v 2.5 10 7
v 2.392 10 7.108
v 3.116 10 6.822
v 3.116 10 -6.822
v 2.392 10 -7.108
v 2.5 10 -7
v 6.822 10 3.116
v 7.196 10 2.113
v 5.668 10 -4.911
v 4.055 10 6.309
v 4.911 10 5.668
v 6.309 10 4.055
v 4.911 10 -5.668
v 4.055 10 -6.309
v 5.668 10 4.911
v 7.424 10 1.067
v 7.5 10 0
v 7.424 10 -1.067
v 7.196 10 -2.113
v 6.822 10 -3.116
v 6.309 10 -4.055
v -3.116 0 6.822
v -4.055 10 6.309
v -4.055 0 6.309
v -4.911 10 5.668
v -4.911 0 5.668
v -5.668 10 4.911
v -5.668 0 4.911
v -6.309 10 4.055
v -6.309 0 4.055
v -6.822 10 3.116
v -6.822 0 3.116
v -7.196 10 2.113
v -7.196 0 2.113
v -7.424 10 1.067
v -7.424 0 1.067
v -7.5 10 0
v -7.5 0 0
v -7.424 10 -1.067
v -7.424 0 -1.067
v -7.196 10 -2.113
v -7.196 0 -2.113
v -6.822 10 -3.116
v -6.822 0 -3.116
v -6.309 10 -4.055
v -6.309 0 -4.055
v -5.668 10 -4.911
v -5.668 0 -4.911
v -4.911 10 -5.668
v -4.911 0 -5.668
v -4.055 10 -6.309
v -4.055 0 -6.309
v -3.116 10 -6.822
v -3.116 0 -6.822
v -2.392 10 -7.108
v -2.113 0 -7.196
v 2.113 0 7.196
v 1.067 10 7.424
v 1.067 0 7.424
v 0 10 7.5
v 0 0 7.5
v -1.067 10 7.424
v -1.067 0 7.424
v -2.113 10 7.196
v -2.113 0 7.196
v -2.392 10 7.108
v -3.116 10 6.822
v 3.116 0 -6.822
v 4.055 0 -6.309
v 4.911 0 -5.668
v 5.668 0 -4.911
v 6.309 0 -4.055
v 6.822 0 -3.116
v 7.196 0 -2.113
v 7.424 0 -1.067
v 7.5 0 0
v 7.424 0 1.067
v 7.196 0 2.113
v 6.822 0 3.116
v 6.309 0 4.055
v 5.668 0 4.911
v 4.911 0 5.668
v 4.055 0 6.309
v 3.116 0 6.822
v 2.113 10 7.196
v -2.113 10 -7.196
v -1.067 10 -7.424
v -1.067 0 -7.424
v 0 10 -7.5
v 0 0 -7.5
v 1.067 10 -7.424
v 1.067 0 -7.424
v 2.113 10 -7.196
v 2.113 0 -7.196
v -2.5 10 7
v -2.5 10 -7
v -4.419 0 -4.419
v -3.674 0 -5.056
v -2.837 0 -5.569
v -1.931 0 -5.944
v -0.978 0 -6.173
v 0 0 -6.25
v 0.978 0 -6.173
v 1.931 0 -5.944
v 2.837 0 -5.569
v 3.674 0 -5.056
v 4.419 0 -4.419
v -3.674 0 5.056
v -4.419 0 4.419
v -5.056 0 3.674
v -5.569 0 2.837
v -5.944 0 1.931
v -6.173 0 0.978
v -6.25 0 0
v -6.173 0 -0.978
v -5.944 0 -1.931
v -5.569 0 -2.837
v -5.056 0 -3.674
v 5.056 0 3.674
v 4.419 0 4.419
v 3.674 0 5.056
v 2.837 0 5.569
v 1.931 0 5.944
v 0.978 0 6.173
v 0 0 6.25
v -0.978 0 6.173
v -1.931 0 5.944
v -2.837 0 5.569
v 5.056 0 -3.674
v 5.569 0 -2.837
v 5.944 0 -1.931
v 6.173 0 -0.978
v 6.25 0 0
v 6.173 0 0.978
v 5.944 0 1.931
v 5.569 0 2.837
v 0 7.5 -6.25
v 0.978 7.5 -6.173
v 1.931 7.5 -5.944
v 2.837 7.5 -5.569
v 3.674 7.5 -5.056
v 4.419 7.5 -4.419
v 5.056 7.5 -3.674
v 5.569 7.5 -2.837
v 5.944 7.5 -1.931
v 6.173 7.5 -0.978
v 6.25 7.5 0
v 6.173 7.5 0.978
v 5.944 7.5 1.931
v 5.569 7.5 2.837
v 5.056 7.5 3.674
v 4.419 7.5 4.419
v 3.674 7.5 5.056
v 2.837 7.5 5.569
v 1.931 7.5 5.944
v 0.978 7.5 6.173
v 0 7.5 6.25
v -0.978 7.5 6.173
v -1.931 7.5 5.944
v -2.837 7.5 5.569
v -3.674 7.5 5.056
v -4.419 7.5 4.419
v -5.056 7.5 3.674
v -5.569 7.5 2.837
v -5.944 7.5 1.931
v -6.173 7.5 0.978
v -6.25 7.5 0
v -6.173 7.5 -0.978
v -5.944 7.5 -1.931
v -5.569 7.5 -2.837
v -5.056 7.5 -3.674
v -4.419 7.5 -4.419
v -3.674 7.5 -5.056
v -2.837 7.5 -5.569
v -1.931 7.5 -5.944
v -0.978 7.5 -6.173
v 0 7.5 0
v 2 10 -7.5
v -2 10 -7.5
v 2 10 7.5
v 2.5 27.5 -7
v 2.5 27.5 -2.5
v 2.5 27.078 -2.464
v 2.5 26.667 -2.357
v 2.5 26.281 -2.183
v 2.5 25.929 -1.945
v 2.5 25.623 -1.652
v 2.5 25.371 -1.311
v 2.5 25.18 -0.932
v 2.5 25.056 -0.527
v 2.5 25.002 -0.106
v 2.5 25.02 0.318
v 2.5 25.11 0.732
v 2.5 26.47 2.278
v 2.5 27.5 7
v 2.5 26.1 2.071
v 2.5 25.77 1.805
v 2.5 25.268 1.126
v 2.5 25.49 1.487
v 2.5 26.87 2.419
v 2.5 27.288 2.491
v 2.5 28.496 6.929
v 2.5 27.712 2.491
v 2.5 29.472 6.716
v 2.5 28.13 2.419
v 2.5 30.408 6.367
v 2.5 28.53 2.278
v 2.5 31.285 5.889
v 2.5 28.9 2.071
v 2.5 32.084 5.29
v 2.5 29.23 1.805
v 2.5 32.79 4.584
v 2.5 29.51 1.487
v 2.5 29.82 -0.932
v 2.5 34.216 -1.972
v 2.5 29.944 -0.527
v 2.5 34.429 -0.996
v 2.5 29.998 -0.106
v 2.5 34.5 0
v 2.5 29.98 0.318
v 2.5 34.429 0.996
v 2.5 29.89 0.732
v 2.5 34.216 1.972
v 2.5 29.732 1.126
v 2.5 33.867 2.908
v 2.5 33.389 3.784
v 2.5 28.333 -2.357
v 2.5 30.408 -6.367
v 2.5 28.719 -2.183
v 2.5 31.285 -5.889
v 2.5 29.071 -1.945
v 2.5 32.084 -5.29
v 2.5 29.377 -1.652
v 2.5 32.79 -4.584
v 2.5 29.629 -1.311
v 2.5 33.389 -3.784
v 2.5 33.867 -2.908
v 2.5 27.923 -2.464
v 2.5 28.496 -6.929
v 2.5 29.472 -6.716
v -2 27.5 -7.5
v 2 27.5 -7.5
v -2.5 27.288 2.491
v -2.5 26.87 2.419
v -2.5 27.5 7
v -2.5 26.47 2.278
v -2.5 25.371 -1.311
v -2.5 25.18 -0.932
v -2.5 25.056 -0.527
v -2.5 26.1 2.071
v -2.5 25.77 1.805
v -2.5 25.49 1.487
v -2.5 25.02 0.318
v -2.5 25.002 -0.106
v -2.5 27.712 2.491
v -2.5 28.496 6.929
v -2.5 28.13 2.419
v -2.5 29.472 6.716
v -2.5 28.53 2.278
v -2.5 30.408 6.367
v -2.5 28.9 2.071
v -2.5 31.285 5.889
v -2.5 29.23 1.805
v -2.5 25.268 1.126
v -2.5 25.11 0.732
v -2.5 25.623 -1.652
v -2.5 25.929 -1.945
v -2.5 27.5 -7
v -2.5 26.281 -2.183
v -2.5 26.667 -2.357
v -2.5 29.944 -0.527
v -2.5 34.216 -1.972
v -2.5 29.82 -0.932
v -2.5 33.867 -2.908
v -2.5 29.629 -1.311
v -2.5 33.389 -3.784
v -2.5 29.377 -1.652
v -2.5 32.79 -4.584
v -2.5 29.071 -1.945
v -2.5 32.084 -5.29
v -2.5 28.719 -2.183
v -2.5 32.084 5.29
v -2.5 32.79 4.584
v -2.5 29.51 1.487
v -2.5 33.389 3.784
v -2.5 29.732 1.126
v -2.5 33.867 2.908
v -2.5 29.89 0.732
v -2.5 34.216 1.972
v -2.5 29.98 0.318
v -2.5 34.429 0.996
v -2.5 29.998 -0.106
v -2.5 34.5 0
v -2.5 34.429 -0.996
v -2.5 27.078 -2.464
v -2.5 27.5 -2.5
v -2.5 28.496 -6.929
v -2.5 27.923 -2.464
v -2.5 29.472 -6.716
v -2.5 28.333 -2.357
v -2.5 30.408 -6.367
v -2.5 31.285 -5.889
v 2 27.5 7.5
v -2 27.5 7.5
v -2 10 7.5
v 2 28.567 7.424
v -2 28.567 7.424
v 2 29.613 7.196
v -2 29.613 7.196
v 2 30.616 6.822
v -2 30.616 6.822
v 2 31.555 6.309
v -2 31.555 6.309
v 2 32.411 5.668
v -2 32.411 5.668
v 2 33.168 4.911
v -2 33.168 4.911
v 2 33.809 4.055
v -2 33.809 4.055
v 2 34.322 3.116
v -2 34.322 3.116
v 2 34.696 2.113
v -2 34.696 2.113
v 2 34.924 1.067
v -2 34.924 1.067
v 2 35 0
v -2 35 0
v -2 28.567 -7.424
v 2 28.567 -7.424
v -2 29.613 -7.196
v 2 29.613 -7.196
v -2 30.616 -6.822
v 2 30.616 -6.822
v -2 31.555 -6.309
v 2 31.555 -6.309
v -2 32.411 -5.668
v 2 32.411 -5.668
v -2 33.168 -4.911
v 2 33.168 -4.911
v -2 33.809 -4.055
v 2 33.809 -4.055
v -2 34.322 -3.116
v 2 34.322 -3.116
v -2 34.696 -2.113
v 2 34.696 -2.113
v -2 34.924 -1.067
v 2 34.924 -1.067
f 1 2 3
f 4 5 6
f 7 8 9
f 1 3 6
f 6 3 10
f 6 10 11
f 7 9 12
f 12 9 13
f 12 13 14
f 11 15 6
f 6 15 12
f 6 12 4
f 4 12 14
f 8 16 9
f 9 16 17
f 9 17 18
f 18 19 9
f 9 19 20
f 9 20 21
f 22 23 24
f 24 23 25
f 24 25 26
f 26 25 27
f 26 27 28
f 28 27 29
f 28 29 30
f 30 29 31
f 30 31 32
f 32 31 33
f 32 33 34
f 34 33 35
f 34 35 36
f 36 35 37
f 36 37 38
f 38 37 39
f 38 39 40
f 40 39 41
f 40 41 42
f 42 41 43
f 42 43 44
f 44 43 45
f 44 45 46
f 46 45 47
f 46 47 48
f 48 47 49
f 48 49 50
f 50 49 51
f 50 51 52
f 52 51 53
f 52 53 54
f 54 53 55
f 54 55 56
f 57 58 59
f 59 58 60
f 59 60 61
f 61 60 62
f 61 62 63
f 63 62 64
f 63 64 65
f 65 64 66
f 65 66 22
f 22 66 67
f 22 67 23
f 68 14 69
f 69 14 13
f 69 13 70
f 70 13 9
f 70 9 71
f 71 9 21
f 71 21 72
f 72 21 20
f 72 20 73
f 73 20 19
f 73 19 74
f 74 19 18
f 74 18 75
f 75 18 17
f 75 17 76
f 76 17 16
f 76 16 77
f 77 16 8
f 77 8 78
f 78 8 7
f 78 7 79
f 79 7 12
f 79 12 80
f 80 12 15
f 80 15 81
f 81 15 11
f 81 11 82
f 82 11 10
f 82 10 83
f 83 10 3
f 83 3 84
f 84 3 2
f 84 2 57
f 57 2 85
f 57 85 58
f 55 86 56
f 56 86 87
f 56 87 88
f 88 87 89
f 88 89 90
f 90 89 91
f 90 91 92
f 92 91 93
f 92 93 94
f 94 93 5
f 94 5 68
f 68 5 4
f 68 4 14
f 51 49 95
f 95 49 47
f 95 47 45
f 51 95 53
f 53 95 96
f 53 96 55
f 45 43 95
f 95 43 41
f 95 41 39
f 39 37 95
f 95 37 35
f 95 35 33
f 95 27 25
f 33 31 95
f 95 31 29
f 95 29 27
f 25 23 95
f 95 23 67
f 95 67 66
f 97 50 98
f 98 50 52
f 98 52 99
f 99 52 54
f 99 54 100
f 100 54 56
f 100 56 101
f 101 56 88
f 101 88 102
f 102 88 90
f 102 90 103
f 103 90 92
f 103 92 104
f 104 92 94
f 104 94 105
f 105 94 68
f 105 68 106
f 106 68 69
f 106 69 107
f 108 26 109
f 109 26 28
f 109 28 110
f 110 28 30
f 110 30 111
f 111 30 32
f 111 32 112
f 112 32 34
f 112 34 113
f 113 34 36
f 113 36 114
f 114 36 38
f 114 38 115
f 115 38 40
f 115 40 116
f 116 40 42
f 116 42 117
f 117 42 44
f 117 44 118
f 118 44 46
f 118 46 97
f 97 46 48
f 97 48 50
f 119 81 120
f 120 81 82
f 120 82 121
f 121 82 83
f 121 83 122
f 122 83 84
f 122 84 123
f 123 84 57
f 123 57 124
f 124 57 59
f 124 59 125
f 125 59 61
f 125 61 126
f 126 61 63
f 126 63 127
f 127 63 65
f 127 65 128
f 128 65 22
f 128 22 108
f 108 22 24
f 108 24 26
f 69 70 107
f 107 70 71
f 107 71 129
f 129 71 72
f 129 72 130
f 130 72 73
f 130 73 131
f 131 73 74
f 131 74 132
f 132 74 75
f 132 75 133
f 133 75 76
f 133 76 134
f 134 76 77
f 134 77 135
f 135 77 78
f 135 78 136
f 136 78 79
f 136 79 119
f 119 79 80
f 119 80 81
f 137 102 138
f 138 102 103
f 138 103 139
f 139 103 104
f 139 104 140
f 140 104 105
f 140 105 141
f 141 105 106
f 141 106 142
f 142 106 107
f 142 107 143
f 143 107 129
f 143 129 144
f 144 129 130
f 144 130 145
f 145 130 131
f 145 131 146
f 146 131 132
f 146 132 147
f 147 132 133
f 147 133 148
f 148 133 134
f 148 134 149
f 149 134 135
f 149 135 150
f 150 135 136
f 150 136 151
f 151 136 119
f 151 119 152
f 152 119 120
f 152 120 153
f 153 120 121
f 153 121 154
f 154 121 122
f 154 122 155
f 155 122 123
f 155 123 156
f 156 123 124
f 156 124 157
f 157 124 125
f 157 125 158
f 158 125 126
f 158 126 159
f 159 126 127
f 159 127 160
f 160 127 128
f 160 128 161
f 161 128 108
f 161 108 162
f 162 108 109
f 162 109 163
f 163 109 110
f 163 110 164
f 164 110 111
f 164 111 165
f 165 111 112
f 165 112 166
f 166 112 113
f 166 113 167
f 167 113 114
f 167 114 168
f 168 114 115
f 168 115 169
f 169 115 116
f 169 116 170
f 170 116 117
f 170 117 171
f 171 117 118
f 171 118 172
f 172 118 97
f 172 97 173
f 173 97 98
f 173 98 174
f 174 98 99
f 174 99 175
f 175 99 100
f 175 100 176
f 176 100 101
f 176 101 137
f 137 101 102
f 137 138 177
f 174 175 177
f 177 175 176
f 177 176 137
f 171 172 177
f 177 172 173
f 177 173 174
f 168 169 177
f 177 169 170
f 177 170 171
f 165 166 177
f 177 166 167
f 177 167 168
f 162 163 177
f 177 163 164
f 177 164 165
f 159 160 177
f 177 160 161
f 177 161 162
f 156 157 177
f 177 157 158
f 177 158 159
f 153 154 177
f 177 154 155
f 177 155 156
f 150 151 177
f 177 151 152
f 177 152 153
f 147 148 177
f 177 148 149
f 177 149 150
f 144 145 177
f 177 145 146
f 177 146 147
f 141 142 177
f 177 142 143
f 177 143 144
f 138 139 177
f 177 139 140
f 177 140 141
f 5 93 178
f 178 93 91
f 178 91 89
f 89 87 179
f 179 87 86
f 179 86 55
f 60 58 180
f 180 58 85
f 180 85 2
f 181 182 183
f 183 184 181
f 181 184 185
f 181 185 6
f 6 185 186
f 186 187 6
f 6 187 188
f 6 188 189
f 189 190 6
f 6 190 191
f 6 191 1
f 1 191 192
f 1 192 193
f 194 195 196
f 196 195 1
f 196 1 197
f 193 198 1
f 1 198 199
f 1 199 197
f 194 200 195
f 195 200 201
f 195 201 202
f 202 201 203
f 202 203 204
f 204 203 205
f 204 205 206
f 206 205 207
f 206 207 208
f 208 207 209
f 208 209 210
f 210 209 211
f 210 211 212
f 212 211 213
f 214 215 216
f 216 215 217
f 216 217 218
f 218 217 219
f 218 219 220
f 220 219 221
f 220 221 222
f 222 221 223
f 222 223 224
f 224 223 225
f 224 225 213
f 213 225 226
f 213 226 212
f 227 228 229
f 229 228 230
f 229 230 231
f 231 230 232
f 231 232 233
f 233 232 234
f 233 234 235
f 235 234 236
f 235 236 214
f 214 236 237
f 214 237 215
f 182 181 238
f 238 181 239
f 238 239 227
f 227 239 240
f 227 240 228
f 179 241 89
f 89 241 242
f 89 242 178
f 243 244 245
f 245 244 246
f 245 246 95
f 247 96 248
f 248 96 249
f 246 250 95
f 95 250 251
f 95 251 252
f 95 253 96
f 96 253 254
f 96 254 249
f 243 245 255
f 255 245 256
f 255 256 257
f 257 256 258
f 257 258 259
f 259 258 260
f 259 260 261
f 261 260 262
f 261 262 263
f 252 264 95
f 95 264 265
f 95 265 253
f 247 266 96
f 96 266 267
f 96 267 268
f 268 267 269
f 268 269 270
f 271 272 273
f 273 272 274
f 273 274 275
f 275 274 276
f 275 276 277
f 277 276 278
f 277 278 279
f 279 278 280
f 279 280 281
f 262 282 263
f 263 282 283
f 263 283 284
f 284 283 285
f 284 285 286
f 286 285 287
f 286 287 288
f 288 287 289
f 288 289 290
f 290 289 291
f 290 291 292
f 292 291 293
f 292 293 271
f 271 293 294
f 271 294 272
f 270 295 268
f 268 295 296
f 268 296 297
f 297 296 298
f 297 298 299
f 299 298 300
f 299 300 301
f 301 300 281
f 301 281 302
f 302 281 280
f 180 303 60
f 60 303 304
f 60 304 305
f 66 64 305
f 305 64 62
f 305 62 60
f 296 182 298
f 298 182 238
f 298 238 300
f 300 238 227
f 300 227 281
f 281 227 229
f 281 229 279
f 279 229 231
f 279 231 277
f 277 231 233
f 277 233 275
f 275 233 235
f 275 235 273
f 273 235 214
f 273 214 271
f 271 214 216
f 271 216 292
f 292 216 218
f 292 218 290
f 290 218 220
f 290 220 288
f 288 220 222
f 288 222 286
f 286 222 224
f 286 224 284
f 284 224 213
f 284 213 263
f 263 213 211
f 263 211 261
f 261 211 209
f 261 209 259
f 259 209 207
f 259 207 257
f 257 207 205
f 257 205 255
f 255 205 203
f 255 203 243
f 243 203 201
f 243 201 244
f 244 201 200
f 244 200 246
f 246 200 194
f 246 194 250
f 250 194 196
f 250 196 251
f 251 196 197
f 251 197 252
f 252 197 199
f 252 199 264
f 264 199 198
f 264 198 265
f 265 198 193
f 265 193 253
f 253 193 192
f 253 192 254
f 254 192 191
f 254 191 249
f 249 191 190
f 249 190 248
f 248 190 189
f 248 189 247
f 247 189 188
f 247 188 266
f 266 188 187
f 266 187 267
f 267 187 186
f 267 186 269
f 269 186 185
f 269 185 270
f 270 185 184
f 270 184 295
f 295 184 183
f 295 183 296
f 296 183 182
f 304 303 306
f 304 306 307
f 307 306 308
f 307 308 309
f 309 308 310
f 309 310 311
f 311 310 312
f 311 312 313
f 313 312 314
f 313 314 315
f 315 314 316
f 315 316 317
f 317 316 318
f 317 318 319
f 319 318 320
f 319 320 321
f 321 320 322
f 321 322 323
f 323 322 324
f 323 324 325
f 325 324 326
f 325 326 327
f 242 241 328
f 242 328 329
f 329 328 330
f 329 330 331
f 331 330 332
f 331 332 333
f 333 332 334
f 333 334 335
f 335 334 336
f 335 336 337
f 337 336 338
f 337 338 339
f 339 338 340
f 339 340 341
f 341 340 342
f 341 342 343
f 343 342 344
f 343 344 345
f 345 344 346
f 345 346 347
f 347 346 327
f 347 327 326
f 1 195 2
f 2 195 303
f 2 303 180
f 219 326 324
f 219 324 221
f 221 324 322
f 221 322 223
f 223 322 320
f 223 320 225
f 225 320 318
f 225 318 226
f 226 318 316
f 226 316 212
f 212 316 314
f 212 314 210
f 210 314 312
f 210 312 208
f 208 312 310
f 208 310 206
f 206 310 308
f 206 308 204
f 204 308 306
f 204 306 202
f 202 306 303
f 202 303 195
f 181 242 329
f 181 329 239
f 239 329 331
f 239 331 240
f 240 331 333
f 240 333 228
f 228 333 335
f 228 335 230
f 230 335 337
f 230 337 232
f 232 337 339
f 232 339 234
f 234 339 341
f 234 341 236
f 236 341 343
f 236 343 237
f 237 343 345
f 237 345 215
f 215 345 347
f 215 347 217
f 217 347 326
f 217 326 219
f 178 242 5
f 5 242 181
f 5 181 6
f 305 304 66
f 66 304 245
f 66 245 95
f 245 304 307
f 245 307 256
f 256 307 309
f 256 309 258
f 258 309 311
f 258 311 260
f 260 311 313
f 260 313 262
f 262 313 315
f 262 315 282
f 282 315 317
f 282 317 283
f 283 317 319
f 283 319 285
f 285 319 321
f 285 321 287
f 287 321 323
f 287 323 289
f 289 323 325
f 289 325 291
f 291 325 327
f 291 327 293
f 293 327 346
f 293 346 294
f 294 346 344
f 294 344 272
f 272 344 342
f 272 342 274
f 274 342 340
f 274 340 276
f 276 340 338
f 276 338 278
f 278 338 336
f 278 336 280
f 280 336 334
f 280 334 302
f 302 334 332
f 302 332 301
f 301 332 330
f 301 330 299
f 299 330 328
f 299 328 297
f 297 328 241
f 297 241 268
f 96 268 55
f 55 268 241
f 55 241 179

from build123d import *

# Parameters (mm, degrees)
SKETCH1_R           = 7.5
BOSS_EXTRUDE1_DEPTH = 10
SKETCH2_R           = 6.25
CUT_EXTRUDE2_DEPTH  = 7.5
SKETCH3_W           = 5
SKETCH3_H           = 15
BOSS_EXTRUDE2_DEPTH = 25
SKETCH4_R           = 2.5
CUT_EXTRUDE3_DEPTH  = 5
FILLET1_R           = 7.5
CHAMFER1_SIZE       = 0.5


# Some blends are built 0.0001 mm under size
with BuildPart() as part:
    # Sketch1 → Boss-Extrude1 (new body)
    with BuildSketch(Plane(origin=(0, 0, 0), x_dir=(1, 0, 0), z_dir=(0, 1, 0))):
        with Locations(Location((0, 0, 0), (0, 0, 270))):
            Circle(SKETCH1_R)
    extrude(amount=BOSS_EXTRUDE1_DEPTH)

    # Sketch2 → Cut-Extrude2 (cut)
    with BuildSketch(Plane.XZ):
        with Locations(Location((0, 0, 0), (0, 0, 270))):
            Circle(SKETCH2_R)
    extrude(amount=-CUT_EXTRUDE2_DEPTH, mode=Mode.SUBTRACT)

    # Sketch3 → Boss-Extrude2 (add)
    with BuildSketch(Plane(origin=(0, 10, 0), x_dir=(1, 0, 0), z_dir=(0, 1, 0))):
        Rectangle(SKETCH3_W, SKETCH3_H)
    extrude(amount=BOSS_EXTRUDE2_DEPTH)

    # Sketch4 → Cut-Extrude3 (cut)
    with BuildSketch(Plane(origin=(2.5, 0, 0), x_dir=(0, 0, -1), z_dir=(1, 0, 0))):
        with Locations((0, 27.5)):
            Circle(SKETCH4_R)
    extrude(amount=-CUT_EXTRUDE3_DEPTH, mode=Mode.SUBTRACT)

    # Fillet1
    fillet1_edges = [part.edges().sort_by_distance(p)[0] for p in [
        (0, 35, -7.5),
        (0, 35, 7.5),
    ]]
    fillet(fillet1_edges, radius=FILLET1_R - 0.0001)  # a hair under: the kernel refuses the full size

    # Chamfer1
    # the kernel refuses this chamfer: 0.5 mm, written as the material it takes off along each edge
    with BuildSketch(Plane(origin=(-2.5, 10, 7.5), x_dir=(-0.027495876610586462, 0, -0.9996219169112968), z_dir=(0, 1, 0)), Plane(origin=(2.5, 10, 7.5), x_dir=(-0.9996219169112968, 0, 0.027495876610585623), z_dir=(0, 1, 0))) as chamfer1_piece_1:
        Polygon((CHAMFER1_SIZE * 0.999621916911, -CHAMFER1_SIZE * 0.0274958766106), (-CHAMFER1_SIZE * 0.0274958766106, -CHAMFER1_SIZE * 0.999621916911), (0, 0), align=None)
    extrude(amount=17.5001, mode=Mode.SUBTRACT)
    with BuildSketch(Plane(origin=(-2.5, 10, -7.5), x_dir=(-0.02749587661058651, 0, 0.9996219169112968), z_dir=(0, 1, 0)), Plane(origin=(2.5, 10, -7.5), x_dir=(-0.9996219169112968, 0, -0.027495876610585623), z_dir=(0, 1, 0))) as chamfer1_piece_2:
        Polygon((CHAMFER1_SIZE * 0.999621916911, CHAMFER1_SIZE * 0.0274958766106), (-CHAMFER1_SIZE * 0.0274958766106, CHAMFER1_SIZE * 0.999621916911), (0, 0), align=None)
    extrude(amount=17.5001, mode=Mode.SUBTRACT)
    with BuildSketch(Plane(origin=(-2.5, 27.5001, 0.0001), x_dir=(0, 0, 1), z_dir=(0, -1, 0))) as chamfer1_piece_3:
        Polygon((7.4999 - CHAMFER1_SIZE, 0), (7.4999, -CHAMFER1_SIZE), (7.4999, 0), align=None)
    revolve(axis=Axis((-2.5, 27.5001, 0.0001), (-1, 0, 0)), revolution_arc=90, mode=Mode.SUBTRACT)
    with BuildSketch(Plane(origin=(-2.5, 27.5001, -0.0001), x_dir=(0, 0, -1), z_dir=(0, -1, 0))) as chamfer1_piece_4:
        Polygon((7.4999 - CHAMFER1_SIZE, 0), (7.4999, CHAMFER1_SIZE), (7.4999, 0), align=None)
    revolve(axis=Axis((-2.5, 27.5001, -0.0001), (1, 0, 0)), revolution_arc=90, mode=Mode.SUBTRACT)
    with BuildSketch(Plane(origin=(2.5, 27.5001, 0.0001), x_dir=(0, 0, 1), z_dir=(0, -1, 0))) as chamfer1_piece_5:
        Polygon((7.4999, CHAMFER1_SIZE), (7.4999 - CHAMFER1_SIZE, 0), (7.4999, 0), align=None)
    revolve(axis=Axis((2.5, 27.5001, 0.0001), (-1, 0, 0)), revolution_arc=90, mode=Mode.SUBTRACT)
    with BuildSketch(Plane(origin=(2.5, 27.5001, -0.0001), x_dir=(0, 0, -1), z_dir=(0, -1, 0))) as chamfer1_piece_6:
        Polygon((7.4999, -CHAMFER1_SIZE), (7.4999 - CHAMFER1_SIZE, 0), (7.4999, 0), align=None)
    revolve(axis=Axis((2.5, 27.5001, -0.0001), (1, 0, 0)), revolution_arc=90, mode=Mode.SUBTRACT)
    with BuildSketch(Plane(origin=(2.5, 35, 0.0001), x_dir=(-0.999621916911297, 0.027495876610582174, 0), z_dir=(0, 0, -1))) as chamfer1_piece_7:
        Polygon((CHAMFER1_SIZE * 0.999621916911, -CHAMFER1_SIZE * 0.0274958766106), (-CHAMFER1_SIZE * 0.0274958766106, -CHAMFER1_SIZE * 0.999621916911), (0, 0), align=None)
    extrude(amount=0.0002, mode=Mode.SUBTRACT)
    with BuildSketch(Plane(origin=(-2.5, 35, -0.0001), x_dir=(-0.027495876610586605, -0.9996219169112968, 0), z_dir=(0, 0, 1))) as chamfer1_piece_8:
        Polygon((CHAMFER1_SIZE * 0.999621916911, CHAMFER1_SIZE * 0.0274958766106), (-CHAMFER1_SIZE * 0.0274958766106, CHAMFER1_SIZE * 0.999621916911), (0, 0), align=None)
    extrude(amount=0.0002, mode=Mode.SUBTRACT)


solid = part.part
